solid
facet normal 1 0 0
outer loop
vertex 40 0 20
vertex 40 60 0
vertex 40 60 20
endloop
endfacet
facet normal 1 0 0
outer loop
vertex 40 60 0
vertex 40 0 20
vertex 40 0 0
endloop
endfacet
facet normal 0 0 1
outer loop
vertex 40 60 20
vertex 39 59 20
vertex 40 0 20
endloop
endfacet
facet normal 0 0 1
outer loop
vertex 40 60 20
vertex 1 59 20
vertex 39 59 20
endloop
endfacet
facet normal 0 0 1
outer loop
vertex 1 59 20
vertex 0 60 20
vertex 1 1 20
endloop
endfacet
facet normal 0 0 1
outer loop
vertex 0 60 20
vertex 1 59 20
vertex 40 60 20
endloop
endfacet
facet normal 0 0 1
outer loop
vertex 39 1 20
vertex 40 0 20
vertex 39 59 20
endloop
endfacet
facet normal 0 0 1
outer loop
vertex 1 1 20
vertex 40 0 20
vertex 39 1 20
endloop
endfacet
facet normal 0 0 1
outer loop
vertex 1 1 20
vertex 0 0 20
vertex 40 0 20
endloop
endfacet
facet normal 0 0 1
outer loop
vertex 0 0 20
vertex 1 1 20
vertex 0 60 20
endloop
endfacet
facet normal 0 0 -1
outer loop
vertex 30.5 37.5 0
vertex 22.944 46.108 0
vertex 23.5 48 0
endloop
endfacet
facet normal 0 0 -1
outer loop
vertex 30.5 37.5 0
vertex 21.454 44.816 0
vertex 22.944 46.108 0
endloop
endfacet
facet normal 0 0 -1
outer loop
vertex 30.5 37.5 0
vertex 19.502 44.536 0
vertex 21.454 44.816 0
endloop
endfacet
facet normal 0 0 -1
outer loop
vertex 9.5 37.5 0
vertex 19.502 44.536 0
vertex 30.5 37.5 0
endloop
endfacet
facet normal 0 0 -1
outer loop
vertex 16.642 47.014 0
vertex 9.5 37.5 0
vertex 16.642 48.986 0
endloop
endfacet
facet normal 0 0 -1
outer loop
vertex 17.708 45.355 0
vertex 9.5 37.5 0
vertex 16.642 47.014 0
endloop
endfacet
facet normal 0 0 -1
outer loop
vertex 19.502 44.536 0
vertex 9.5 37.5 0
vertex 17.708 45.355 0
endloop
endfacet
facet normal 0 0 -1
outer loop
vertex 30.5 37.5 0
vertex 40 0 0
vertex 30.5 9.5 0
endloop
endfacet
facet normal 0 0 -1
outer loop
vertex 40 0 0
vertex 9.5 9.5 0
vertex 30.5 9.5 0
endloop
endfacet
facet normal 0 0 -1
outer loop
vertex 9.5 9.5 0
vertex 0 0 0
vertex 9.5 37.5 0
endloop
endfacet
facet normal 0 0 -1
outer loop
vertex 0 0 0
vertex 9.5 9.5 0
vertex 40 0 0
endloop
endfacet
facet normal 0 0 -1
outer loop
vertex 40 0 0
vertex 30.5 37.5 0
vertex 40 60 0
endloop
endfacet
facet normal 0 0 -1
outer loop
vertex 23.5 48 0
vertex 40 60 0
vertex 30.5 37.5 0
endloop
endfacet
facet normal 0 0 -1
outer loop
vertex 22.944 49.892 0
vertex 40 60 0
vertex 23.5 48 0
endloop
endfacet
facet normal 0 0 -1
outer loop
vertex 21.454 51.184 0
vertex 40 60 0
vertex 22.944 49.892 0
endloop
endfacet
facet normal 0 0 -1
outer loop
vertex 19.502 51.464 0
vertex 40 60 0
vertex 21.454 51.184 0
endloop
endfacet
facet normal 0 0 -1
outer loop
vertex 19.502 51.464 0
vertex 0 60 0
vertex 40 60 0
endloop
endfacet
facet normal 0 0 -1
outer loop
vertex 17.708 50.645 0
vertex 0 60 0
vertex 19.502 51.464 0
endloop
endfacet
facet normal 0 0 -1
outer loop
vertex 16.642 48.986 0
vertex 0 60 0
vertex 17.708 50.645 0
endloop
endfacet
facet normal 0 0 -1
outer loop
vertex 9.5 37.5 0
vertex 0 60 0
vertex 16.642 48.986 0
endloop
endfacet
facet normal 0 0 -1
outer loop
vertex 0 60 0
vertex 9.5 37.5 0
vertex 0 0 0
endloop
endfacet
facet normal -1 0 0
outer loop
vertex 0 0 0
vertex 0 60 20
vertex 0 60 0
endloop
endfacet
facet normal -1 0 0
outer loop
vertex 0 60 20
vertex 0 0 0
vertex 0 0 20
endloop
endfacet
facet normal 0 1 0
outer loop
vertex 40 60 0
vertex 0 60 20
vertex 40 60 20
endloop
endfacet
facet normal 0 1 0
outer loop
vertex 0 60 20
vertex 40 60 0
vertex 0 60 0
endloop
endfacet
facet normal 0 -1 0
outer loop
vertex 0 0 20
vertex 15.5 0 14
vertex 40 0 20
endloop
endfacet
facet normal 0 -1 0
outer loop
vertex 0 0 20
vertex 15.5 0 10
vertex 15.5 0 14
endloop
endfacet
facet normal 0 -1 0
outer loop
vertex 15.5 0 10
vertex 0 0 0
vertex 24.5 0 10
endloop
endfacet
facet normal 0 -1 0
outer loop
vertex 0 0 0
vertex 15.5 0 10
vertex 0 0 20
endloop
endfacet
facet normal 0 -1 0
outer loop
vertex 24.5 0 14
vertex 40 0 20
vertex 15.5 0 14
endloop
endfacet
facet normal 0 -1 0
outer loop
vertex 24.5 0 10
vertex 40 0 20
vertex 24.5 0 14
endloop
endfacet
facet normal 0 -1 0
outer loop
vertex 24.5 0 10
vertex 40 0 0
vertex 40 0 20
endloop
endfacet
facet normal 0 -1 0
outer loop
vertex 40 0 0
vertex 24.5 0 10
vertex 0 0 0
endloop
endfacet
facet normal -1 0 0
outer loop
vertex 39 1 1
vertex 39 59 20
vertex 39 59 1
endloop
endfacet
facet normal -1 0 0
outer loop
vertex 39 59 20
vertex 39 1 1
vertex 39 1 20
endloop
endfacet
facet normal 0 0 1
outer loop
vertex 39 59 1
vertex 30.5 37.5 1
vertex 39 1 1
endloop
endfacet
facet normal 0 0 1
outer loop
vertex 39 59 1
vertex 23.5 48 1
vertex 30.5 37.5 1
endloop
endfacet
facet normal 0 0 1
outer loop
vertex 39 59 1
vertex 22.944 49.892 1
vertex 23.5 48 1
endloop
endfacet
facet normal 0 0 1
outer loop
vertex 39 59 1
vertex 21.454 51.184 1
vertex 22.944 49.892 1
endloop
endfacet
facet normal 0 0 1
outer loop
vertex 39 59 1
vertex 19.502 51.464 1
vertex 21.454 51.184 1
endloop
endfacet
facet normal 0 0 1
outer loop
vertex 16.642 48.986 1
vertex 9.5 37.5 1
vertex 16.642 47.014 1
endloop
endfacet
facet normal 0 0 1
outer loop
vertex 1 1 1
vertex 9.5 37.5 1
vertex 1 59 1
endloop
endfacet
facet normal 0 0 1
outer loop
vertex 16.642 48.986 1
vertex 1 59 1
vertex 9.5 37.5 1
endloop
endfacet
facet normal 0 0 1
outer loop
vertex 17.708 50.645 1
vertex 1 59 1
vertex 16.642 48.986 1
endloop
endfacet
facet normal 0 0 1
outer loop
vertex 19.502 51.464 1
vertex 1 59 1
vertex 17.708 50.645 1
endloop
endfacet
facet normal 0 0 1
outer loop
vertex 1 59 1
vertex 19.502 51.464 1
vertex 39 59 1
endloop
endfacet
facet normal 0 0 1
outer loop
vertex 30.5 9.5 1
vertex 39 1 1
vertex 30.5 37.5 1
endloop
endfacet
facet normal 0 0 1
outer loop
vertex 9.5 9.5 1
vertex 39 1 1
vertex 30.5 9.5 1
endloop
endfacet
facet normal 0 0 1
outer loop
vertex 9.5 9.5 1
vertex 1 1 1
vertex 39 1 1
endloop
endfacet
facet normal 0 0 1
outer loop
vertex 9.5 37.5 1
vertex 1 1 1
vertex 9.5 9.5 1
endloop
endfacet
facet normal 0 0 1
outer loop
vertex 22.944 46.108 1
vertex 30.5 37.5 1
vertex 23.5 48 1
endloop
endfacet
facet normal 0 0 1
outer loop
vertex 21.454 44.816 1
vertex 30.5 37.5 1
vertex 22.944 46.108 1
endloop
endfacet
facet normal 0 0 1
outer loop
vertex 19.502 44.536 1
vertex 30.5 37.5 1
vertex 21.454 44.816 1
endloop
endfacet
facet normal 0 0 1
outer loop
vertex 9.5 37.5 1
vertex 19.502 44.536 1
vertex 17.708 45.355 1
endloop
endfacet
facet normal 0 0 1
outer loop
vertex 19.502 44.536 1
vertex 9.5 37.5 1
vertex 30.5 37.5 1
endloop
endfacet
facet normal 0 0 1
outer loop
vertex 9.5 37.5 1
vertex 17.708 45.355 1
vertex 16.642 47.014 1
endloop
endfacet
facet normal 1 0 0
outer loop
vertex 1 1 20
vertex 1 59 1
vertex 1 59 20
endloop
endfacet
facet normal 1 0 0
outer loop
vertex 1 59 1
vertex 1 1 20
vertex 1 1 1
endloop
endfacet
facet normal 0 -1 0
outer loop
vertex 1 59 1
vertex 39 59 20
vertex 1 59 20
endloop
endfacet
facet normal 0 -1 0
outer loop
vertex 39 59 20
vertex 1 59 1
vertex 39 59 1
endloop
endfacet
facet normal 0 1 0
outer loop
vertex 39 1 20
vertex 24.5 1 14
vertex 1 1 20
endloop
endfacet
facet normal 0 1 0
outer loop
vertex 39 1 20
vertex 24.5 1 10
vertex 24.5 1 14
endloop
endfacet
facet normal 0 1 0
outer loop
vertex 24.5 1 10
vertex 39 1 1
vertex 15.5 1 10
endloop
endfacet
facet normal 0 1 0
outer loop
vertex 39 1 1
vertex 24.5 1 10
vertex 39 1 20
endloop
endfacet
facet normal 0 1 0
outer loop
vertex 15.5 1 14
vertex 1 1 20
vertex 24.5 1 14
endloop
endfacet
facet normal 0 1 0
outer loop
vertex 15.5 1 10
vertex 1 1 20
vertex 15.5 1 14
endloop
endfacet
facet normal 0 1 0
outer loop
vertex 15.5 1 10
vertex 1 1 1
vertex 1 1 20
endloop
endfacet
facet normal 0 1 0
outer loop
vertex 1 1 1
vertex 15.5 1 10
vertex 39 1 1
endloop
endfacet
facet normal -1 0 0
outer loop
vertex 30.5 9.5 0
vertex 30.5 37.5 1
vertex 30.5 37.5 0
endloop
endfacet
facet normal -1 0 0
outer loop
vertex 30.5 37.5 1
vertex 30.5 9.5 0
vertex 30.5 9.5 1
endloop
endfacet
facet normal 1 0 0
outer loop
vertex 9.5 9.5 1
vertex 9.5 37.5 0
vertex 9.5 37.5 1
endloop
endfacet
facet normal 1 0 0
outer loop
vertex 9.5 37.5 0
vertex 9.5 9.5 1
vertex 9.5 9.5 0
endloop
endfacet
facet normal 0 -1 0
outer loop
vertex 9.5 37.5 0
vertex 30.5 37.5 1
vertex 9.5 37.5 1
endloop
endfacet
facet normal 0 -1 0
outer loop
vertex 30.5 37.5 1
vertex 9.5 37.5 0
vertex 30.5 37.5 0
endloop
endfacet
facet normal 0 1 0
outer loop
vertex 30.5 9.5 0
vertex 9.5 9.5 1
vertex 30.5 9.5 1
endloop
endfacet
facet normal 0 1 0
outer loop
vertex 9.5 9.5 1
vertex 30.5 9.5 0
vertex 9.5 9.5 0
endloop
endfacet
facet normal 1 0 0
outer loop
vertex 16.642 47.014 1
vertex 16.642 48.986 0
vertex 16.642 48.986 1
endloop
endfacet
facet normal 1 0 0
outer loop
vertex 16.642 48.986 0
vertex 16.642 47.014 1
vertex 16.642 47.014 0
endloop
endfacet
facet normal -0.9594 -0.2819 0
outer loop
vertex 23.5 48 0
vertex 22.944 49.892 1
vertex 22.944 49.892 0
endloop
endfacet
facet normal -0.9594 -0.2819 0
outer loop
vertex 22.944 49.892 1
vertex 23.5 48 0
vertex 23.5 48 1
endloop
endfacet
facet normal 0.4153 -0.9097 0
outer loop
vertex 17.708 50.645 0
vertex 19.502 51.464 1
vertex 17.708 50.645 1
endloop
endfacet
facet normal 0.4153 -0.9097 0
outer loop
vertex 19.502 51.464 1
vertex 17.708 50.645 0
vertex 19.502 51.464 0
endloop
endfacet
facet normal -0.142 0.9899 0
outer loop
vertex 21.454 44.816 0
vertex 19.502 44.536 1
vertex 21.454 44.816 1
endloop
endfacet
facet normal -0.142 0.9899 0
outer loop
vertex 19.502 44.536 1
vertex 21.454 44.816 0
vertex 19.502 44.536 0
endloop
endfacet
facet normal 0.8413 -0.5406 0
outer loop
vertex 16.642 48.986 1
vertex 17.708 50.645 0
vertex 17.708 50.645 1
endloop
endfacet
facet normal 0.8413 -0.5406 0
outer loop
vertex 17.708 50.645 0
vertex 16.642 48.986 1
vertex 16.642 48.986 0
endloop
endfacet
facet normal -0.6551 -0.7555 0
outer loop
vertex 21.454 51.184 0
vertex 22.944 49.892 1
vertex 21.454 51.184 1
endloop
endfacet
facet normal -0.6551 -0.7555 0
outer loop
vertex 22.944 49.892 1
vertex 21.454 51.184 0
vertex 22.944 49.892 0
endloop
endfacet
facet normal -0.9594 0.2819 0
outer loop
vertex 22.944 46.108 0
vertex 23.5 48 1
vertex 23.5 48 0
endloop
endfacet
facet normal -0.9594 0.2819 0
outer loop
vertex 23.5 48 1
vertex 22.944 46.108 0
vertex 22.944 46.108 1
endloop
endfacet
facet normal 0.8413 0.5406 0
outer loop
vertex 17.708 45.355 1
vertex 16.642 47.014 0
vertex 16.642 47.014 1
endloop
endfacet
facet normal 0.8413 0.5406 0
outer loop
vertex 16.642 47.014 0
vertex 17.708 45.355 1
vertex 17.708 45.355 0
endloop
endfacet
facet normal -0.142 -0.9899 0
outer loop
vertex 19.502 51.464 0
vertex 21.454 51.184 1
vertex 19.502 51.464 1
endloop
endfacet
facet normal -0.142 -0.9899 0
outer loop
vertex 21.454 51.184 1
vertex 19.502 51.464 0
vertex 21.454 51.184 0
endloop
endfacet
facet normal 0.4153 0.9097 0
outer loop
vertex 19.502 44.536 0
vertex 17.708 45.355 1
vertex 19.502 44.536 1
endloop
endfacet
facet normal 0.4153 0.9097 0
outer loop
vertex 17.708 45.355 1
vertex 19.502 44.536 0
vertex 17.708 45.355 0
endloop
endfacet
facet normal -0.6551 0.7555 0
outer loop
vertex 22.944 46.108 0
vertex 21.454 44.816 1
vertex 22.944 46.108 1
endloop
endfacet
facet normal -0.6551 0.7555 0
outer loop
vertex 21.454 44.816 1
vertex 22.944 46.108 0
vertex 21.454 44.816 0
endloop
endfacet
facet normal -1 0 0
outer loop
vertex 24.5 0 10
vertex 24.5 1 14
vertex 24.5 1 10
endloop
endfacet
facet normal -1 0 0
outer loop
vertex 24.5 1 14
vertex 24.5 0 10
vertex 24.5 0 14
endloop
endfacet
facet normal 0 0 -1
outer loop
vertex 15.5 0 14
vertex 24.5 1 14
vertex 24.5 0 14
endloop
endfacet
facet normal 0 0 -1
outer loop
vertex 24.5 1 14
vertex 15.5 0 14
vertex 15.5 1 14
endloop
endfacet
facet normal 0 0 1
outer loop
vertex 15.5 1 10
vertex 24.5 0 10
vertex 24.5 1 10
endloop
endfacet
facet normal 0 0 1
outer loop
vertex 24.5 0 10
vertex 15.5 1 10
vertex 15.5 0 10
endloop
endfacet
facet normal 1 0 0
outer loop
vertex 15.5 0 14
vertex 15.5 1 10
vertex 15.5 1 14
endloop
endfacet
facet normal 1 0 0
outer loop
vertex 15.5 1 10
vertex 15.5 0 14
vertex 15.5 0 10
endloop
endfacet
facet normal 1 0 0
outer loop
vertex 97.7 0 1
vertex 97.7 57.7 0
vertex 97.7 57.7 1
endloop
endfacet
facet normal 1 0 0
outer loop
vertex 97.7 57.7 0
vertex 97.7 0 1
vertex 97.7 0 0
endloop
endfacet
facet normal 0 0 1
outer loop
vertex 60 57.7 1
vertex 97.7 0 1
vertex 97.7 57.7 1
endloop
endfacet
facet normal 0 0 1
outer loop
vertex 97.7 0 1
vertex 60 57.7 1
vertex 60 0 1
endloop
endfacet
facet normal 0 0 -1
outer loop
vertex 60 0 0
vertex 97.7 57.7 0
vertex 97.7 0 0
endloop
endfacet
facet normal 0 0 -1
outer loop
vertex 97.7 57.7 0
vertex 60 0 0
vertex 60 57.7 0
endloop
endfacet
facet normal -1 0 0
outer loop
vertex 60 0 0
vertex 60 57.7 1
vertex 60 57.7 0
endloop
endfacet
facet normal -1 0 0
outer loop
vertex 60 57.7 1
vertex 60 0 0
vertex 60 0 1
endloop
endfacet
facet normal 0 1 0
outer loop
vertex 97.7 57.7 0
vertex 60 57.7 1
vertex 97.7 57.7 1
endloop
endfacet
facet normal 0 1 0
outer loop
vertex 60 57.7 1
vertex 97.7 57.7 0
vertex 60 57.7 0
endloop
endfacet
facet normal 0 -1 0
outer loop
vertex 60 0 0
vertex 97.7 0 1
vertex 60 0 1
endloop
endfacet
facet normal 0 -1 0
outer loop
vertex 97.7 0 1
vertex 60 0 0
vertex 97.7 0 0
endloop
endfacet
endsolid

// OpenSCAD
 width = 40;
length = 60;
depth = 20;
wall = 1;
fitting = 0.001;

display_width = 21;
display_length = 28;
snug_fit = 0.3;
union(){
    difference(){
        // case
        cube([width, length, depth]);
        // case cutout
        translate([wall, wall,wall])
        cube([width-2*wall, length-2*wall, depth-wall+fitting]);    
        // display cutout
        translate([(width-display_width)/2,(width-display_width)/2,-fitting])
        cube([display_width, display_length, wall+2*fitting]);
        // button cutout
        translate([width/2,length - 12,0])
        cylinder(wall*2+fitting, 3.5, 3.5, true);
        // case cutout
        translate([(width-9)/2,-fitting,depth-10])
        cube([9,wall+2*fitting,4]);
    }

    
    // lid
    translate([width+20,0,0])
    cube([width - 2*wall - snug_fit, length- 2*wall - snug_fit, wall]);
}
